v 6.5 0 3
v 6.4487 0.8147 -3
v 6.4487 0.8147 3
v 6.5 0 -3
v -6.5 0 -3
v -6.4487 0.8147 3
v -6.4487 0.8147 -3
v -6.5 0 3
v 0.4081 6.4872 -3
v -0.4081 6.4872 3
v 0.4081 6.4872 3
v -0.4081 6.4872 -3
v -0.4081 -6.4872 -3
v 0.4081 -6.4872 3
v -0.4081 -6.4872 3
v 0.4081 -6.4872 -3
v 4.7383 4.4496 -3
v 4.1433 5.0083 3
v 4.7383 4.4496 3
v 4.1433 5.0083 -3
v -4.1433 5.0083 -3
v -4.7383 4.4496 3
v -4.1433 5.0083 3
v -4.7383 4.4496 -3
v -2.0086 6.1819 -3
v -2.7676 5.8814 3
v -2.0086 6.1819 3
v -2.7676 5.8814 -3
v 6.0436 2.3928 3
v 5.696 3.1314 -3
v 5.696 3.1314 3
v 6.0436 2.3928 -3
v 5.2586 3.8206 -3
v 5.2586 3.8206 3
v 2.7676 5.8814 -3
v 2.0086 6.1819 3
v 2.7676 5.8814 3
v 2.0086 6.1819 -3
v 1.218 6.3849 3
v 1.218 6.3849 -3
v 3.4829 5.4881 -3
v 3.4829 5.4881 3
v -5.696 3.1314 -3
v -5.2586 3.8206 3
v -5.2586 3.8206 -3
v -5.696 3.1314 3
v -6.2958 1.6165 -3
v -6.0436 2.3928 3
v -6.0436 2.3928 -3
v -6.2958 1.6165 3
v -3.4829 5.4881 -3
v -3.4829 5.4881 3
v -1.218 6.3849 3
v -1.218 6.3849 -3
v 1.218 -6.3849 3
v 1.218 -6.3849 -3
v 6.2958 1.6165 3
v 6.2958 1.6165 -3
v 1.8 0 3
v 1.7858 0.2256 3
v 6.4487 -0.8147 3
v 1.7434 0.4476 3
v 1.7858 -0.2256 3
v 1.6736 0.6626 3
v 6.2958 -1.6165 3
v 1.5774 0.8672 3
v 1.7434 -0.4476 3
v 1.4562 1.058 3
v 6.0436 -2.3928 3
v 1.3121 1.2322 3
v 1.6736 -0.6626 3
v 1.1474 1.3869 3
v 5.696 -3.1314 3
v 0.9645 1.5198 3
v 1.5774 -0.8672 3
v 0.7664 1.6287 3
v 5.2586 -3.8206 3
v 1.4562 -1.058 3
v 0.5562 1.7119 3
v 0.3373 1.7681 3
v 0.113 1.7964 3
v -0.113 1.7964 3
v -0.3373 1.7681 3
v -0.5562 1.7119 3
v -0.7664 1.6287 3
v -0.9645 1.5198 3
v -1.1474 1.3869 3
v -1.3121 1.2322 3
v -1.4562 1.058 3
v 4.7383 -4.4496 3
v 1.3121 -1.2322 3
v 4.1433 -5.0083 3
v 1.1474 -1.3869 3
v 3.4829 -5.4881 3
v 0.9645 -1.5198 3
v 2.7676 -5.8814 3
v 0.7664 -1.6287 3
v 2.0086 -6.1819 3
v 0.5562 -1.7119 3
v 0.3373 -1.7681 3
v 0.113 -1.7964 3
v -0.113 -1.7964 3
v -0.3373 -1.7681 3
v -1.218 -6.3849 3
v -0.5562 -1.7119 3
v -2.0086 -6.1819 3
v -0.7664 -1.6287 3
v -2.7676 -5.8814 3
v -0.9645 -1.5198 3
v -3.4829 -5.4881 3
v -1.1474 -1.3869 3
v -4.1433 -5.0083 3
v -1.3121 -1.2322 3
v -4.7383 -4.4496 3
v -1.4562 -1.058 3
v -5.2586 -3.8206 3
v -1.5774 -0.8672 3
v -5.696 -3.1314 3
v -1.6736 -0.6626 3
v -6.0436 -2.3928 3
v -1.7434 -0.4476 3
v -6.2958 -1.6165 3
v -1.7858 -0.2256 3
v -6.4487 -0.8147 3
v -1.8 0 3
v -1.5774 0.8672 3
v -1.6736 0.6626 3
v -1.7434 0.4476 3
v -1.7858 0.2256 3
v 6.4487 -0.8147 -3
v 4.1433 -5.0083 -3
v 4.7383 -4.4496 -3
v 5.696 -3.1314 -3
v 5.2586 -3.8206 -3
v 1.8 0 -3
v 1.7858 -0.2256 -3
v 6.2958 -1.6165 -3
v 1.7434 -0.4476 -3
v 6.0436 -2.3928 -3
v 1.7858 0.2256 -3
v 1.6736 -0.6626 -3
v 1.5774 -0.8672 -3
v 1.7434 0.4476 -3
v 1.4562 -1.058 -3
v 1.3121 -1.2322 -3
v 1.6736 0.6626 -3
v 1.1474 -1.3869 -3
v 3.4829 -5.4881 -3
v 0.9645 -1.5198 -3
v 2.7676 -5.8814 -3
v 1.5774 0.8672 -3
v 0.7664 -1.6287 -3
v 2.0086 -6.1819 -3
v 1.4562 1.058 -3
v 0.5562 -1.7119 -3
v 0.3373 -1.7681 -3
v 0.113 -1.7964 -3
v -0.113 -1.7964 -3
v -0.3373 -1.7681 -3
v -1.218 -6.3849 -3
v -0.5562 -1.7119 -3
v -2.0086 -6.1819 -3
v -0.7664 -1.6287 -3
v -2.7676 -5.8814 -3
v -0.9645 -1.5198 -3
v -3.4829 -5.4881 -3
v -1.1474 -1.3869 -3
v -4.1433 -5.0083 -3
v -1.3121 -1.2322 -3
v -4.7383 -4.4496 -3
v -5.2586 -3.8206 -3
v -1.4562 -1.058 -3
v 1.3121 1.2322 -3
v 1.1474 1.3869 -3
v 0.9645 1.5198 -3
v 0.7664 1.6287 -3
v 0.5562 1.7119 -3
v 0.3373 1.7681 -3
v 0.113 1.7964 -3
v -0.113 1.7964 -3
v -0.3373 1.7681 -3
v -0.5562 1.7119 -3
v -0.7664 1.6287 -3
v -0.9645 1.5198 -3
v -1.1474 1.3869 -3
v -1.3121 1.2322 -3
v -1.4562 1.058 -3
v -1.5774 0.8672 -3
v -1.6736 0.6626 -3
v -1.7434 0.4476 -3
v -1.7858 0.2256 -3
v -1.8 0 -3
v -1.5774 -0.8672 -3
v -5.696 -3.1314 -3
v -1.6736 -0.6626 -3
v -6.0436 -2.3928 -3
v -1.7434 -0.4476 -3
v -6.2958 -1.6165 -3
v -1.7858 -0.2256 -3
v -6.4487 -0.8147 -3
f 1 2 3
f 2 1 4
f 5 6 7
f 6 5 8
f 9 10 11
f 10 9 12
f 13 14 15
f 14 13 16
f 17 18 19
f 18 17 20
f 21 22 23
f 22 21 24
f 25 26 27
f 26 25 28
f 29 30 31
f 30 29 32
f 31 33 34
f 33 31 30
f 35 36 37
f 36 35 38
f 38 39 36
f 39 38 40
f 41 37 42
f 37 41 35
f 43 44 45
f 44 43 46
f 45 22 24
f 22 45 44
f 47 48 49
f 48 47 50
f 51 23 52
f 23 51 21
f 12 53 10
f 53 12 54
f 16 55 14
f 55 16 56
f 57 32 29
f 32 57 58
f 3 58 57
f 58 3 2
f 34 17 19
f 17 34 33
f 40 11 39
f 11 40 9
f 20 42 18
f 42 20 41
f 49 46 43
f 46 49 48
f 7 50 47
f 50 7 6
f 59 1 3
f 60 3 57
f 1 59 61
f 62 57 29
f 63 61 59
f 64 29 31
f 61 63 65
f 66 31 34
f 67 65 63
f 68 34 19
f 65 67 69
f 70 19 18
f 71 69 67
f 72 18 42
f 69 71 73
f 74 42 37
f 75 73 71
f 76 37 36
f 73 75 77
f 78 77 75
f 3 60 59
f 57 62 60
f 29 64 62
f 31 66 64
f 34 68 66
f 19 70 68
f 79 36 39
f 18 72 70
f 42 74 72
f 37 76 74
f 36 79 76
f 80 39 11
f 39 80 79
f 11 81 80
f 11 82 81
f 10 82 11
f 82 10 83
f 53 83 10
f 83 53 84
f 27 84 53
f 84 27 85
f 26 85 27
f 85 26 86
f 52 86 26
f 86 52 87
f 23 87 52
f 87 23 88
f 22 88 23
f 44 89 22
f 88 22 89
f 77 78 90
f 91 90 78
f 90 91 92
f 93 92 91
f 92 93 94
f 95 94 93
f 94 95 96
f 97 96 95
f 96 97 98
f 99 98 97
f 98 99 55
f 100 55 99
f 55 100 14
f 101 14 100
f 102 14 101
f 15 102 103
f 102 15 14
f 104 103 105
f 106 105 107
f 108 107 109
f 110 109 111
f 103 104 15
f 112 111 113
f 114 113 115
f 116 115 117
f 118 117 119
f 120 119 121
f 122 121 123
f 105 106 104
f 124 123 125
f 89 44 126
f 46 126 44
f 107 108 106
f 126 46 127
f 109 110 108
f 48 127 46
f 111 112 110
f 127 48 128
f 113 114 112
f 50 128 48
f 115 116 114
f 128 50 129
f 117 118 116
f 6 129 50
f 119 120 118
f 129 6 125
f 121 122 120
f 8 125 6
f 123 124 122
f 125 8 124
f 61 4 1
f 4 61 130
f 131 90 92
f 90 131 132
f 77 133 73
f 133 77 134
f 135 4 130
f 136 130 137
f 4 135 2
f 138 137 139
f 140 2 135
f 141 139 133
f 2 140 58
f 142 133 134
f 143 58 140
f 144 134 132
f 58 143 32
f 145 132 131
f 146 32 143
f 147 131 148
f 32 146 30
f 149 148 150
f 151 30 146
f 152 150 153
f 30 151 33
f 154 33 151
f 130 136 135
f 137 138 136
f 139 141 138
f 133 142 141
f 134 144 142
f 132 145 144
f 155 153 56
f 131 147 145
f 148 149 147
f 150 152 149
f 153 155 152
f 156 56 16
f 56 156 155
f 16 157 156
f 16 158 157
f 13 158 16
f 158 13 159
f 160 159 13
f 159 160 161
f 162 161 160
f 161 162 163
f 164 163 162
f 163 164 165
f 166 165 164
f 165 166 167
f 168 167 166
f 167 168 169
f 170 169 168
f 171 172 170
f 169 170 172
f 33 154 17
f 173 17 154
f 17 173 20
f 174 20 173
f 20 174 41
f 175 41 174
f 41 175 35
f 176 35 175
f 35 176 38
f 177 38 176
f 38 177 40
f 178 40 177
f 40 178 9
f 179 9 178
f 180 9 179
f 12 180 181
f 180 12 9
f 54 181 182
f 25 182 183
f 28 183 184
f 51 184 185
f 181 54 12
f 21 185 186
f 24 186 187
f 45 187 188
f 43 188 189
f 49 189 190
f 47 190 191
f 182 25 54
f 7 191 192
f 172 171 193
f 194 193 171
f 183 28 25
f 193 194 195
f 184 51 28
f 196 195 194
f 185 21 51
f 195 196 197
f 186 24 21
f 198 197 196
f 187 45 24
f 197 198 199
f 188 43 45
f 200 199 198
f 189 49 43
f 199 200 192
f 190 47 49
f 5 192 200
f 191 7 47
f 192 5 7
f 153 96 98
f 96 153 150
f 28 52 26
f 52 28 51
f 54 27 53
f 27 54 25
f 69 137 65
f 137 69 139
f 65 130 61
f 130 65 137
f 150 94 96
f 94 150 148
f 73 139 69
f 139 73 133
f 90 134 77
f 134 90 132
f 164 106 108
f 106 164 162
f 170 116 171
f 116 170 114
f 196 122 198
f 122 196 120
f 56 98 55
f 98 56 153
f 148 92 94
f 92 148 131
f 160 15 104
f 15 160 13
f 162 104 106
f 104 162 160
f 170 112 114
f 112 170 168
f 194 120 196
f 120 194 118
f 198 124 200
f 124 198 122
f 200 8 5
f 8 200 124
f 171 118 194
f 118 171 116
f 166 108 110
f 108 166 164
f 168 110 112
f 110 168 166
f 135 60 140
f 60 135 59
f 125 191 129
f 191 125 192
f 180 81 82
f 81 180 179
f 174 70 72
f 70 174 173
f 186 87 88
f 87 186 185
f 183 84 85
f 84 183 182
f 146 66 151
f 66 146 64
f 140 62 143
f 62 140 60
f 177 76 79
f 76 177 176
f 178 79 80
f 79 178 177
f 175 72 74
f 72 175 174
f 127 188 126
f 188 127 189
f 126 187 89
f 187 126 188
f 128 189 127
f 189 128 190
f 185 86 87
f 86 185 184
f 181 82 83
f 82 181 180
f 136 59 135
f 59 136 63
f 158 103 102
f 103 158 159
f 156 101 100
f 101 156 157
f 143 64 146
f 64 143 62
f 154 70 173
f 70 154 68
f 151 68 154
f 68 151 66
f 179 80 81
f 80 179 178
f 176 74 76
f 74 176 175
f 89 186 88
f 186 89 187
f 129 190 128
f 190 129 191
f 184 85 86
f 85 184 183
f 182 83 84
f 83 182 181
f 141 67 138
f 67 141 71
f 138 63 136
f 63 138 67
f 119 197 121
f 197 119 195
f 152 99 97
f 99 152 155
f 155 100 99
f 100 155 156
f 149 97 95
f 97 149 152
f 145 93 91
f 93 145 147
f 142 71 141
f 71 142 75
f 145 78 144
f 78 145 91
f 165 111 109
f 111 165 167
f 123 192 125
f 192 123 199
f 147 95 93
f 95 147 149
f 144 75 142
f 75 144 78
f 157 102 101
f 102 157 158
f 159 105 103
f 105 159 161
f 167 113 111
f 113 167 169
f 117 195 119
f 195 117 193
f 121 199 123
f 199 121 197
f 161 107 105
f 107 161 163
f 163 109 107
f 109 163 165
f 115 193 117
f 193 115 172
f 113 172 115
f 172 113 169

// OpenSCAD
$fn = 50;


difference() {
	union() {
		translate(v = [0, 0, -3.0000000000]) {
			cylinder(h = 6, r = 6.5000000000);
		}
	}
	union() {
		translate(v = [0, 0, -100.0000000000]) {
			cylinder(h = 200, r = 1.8000000000);
		}
	}
}
